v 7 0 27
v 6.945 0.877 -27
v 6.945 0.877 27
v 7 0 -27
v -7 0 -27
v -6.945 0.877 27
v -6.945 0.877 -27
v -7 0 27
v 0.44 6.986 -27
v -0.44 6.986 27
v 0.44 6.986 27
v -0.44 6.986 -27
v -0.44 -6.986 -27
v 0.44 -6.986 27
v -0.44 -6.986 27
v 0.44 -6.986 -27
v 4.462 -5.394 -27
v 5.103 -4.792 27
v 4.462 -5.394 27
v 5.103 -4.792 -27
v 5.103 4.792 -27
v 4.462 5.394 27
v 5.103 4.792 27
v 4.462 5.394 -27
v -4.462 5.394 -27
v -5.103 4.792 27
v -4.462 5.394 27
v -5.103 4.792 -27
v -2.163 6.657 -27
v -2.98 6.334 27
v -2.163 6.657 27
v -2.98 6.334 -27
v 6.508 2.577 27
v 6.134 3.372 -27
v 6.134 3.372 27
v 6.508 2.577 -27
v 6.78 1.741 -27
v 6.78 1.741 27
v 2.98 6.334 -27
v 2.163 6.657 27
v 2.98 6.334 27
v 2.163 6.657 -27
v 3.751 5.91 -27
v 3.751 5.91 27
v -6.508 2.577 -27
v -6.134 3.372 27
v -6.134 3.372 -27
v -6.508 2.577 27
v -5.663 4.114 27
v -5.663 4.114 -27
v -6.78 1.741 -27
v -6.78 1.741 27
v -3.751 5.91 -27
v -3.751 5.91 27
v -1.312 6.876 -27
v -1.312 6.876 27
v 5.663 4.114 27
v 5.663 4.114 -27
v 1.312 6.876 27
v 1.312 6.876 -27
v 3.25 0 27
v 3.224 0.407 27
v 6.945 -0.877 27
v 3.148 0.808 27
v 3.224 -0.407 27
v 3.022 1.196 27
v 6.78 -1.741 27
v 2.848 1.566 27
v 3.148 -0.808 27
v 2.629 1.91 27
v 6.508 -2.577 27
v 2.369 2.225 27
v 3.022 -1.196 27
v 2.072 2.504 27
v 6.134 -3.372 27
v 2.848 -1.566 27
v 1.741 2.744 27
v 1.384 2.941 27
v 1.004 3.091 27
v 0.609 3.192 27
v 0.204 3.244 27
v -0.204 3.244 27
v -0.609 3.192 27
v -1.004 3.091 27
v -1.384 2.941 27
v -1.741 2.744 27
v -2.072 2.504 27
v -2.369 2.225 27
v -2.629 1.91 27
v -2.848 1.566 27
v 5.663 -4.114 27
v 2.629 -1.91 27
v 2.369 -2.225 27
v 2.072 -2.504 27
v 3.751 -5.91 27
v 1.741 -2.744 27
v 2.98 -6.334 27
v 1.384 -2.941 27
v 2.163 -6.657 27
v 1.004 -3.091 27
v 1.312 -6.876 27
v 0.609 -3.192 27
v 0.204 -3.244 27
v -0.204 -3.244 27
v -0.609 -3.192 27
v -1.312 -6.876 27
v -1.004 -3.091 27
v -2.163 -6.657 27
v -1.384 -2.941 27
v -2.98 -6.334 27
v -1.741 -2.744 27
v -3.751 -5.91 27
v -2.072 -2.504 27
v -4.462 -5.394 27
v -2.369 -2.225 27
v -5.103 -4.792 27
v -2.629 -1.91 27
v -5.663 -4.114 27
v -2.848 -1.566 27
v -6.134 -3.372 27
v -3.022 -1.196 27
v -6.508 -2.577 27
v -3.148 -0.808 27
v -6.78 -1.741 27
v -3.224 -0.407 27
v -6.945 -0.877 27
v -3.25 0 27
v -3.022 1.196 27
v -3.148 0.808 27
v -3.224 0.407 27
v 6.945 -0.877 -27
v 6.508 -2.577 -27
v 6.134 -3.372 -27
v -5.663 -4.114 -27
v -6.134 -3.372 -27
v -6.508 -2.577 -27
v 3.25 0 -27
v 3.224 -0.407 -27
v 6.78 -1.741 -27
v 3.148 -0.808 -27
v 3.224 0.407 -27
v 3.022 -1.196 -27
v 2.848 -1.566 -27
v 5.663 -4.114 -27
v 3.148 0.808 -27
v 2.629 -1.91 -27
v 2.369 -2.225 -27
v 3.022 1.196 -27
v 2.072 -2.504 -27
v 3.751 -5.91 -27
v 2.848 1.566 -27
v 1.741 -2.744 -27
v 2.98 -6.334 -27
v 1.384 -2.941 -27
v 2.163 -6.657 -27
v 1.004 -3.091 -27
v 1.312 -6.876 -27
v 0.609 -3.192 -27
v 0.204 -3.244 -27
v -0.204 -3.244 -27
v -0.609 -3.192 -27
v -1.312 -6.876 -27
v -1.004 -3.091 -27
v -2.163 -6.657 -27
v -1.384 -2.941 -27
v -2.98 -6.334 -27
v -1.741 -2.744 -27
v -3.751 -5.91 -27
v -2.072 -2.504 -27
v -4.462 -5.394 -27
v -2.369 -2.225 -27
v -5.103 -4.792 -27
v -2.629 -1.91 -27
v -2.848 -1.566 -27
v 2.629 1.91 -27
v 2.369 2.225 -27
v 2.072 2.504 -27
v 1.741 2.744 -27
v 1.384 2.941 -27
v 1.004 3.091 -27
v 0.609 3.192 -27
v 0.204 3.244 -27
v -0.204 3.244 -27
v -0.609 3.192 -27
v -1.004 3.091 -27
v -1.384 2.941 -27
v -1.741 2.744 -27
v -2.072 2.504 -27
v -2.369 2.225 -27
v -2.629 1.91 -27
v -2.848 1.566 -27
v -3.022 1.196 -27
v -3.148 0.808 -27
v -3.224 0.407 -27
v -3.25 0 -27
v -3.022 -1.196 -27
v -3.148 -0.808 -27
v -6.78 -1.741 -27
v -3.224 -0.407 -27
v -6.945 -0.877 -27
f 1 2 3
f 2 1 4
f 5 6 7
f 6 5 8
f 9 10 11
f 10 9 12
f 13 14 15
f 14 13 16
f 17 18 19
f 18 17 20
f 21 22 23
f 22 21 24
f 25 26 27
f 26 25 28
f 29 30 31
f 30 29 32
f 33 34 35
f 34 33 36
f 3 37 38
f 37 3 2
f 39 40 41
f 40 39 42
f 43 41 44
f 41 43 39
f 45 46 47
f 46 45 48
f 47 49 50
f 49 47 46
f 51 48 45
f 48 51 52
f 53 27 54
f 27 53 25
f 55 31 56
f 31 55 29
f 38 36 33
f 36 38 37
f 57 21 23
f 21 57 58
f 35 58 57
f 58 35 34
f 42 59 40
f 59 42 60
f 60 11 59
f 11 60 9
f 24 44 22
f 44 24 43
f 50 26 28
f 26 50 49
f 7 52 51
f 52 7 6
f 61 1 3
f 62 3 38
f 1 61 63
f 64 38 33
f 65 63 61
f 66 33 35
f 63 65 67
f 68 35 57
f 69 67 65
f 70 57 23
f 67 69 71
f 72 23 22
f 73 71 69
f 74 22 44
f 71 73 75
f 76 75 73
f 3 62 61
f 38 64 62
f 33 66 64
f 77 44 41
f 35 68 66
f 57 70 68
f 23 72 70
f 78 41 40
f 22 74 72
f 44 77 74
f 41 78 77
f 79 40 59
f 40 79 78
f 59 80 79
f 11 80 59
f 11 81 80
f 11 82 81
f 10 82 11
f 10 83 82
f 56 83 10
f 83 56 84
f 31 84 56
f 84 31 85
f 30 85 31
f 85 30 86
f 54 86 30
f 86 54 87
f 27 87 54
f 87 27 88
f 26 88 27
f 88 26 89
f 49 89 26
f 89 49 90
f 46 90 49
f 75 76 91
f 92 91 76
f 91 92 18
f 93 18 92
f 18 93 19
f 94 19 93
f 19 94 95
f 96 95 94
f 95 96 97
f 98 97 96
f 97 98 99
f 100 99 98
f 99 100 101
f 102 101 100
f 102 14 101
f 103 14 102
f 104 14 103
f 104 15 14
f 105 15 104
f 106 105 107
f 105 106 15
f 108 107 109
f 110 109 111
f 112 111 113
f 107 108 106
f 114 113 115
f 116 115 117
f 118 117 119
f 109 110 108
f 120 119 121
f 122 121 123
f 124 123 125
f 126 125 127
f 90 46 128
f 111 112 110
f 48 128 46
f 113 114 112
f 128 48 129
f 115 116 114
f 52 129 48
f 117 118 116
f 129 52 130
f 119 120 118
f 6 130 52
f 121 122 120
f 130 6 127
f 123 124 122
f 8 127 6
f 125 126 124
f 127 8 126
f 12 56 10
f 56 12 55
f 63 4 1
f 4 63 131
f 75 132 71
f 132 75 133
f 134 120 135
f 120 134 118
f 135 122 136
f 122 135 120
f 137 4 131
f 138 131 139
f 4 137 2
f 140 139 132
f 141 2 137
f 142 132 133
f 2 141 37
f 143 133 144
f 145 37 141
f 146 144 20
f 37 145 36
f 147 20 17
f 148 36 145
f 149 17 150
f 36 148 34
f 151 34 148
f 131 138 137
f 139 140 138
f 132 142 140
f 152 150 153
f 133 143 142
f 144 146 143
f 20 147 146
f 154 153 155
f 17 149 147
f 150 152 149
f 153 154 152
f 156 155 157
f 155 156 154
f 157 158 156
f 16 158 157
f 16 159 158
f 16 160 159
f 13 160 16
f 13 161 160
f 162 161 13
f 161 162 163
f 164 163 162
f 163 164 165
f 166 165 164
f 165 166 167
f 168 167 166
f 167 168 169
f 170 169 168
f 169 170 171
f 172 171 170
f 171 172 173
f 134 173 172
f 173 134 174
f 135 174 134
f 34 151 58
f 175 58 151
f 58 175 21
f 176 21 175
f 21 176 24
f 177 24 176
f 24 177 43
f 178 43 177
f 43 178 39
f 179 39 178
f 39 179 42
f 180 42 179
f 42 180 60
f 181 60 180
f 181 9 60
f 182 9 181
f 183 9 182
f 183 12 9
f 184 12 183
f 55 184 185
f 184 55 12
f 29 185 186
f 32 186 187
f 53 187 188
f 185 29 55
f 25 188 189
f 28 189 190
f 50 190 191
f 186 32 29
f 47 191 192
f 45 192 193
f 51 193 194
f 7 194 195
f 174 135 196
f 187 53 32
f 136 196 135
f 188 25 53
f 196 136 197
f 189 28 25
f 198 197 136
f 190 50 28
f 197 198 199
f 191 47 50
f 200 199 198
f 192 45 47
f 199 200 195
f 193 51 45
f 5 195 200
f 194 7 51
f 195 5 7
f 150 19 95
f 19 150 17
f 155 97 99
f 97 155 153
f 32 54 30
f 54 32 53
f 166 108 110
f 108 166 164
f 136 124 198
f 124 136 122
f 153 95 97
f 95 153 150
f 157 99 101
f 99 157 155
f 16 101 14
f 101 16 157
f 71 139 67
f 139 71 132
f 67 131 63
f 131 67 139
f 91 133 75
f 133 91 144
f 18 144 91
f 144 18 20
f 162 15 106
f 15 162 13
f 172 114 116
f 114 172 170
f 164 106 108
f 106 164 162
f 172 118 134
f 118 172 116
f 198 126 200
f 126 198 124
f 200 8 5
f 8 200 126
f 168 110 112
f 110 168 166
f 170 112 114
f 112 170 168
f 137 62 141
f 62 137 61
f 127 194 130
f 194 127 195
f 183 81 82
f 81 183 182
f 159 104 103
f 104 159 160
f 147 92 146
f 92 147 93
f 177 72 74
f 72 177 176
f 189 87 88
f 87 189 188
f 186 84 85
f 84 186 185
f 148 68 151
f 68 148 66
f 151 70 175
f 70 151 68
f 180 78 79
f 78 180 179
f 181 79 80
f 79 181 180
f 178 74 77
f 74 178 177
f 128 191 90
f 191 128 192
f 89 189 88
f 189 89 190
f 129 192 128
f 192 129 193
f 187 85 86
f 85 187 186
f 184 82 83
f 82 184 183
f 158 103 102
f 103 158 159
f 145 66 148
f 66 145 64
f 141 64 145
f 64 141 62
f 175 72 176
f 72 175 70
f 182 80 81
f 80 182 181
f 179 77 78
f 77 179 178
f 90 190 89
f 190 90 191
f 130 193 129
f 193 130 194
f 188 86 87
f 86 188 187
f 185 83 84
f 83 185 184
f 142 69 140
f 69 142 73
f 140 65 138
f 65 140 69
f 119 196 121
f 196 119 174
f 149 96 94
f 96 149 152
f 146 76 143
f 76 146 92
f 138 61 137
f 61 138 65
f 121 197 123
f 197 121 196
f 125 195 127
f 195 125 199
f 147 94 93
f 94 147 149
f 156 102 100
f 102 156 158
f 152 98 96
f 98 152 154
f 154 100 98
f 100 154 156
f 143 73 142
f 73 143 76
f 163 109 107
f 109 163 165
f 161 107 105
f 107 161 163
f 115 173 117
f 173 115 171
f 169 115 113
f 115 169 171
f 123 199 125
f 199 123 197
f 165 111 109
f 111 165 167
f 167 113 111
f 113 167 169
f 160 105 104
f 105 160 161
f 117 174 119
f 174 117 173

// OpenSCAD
$fn = 50;


difference() {
	union() {
		translate(v = [0, 0, -27.0000000000]) {
			cylinder(h = 54, r = 7.0000000000);
		}
	}
	union() {
		translate(v = [0, 0, -100.0000000000]) {
			cylinder(h = 200, r = 3.2500000000);
		}
	}
}
